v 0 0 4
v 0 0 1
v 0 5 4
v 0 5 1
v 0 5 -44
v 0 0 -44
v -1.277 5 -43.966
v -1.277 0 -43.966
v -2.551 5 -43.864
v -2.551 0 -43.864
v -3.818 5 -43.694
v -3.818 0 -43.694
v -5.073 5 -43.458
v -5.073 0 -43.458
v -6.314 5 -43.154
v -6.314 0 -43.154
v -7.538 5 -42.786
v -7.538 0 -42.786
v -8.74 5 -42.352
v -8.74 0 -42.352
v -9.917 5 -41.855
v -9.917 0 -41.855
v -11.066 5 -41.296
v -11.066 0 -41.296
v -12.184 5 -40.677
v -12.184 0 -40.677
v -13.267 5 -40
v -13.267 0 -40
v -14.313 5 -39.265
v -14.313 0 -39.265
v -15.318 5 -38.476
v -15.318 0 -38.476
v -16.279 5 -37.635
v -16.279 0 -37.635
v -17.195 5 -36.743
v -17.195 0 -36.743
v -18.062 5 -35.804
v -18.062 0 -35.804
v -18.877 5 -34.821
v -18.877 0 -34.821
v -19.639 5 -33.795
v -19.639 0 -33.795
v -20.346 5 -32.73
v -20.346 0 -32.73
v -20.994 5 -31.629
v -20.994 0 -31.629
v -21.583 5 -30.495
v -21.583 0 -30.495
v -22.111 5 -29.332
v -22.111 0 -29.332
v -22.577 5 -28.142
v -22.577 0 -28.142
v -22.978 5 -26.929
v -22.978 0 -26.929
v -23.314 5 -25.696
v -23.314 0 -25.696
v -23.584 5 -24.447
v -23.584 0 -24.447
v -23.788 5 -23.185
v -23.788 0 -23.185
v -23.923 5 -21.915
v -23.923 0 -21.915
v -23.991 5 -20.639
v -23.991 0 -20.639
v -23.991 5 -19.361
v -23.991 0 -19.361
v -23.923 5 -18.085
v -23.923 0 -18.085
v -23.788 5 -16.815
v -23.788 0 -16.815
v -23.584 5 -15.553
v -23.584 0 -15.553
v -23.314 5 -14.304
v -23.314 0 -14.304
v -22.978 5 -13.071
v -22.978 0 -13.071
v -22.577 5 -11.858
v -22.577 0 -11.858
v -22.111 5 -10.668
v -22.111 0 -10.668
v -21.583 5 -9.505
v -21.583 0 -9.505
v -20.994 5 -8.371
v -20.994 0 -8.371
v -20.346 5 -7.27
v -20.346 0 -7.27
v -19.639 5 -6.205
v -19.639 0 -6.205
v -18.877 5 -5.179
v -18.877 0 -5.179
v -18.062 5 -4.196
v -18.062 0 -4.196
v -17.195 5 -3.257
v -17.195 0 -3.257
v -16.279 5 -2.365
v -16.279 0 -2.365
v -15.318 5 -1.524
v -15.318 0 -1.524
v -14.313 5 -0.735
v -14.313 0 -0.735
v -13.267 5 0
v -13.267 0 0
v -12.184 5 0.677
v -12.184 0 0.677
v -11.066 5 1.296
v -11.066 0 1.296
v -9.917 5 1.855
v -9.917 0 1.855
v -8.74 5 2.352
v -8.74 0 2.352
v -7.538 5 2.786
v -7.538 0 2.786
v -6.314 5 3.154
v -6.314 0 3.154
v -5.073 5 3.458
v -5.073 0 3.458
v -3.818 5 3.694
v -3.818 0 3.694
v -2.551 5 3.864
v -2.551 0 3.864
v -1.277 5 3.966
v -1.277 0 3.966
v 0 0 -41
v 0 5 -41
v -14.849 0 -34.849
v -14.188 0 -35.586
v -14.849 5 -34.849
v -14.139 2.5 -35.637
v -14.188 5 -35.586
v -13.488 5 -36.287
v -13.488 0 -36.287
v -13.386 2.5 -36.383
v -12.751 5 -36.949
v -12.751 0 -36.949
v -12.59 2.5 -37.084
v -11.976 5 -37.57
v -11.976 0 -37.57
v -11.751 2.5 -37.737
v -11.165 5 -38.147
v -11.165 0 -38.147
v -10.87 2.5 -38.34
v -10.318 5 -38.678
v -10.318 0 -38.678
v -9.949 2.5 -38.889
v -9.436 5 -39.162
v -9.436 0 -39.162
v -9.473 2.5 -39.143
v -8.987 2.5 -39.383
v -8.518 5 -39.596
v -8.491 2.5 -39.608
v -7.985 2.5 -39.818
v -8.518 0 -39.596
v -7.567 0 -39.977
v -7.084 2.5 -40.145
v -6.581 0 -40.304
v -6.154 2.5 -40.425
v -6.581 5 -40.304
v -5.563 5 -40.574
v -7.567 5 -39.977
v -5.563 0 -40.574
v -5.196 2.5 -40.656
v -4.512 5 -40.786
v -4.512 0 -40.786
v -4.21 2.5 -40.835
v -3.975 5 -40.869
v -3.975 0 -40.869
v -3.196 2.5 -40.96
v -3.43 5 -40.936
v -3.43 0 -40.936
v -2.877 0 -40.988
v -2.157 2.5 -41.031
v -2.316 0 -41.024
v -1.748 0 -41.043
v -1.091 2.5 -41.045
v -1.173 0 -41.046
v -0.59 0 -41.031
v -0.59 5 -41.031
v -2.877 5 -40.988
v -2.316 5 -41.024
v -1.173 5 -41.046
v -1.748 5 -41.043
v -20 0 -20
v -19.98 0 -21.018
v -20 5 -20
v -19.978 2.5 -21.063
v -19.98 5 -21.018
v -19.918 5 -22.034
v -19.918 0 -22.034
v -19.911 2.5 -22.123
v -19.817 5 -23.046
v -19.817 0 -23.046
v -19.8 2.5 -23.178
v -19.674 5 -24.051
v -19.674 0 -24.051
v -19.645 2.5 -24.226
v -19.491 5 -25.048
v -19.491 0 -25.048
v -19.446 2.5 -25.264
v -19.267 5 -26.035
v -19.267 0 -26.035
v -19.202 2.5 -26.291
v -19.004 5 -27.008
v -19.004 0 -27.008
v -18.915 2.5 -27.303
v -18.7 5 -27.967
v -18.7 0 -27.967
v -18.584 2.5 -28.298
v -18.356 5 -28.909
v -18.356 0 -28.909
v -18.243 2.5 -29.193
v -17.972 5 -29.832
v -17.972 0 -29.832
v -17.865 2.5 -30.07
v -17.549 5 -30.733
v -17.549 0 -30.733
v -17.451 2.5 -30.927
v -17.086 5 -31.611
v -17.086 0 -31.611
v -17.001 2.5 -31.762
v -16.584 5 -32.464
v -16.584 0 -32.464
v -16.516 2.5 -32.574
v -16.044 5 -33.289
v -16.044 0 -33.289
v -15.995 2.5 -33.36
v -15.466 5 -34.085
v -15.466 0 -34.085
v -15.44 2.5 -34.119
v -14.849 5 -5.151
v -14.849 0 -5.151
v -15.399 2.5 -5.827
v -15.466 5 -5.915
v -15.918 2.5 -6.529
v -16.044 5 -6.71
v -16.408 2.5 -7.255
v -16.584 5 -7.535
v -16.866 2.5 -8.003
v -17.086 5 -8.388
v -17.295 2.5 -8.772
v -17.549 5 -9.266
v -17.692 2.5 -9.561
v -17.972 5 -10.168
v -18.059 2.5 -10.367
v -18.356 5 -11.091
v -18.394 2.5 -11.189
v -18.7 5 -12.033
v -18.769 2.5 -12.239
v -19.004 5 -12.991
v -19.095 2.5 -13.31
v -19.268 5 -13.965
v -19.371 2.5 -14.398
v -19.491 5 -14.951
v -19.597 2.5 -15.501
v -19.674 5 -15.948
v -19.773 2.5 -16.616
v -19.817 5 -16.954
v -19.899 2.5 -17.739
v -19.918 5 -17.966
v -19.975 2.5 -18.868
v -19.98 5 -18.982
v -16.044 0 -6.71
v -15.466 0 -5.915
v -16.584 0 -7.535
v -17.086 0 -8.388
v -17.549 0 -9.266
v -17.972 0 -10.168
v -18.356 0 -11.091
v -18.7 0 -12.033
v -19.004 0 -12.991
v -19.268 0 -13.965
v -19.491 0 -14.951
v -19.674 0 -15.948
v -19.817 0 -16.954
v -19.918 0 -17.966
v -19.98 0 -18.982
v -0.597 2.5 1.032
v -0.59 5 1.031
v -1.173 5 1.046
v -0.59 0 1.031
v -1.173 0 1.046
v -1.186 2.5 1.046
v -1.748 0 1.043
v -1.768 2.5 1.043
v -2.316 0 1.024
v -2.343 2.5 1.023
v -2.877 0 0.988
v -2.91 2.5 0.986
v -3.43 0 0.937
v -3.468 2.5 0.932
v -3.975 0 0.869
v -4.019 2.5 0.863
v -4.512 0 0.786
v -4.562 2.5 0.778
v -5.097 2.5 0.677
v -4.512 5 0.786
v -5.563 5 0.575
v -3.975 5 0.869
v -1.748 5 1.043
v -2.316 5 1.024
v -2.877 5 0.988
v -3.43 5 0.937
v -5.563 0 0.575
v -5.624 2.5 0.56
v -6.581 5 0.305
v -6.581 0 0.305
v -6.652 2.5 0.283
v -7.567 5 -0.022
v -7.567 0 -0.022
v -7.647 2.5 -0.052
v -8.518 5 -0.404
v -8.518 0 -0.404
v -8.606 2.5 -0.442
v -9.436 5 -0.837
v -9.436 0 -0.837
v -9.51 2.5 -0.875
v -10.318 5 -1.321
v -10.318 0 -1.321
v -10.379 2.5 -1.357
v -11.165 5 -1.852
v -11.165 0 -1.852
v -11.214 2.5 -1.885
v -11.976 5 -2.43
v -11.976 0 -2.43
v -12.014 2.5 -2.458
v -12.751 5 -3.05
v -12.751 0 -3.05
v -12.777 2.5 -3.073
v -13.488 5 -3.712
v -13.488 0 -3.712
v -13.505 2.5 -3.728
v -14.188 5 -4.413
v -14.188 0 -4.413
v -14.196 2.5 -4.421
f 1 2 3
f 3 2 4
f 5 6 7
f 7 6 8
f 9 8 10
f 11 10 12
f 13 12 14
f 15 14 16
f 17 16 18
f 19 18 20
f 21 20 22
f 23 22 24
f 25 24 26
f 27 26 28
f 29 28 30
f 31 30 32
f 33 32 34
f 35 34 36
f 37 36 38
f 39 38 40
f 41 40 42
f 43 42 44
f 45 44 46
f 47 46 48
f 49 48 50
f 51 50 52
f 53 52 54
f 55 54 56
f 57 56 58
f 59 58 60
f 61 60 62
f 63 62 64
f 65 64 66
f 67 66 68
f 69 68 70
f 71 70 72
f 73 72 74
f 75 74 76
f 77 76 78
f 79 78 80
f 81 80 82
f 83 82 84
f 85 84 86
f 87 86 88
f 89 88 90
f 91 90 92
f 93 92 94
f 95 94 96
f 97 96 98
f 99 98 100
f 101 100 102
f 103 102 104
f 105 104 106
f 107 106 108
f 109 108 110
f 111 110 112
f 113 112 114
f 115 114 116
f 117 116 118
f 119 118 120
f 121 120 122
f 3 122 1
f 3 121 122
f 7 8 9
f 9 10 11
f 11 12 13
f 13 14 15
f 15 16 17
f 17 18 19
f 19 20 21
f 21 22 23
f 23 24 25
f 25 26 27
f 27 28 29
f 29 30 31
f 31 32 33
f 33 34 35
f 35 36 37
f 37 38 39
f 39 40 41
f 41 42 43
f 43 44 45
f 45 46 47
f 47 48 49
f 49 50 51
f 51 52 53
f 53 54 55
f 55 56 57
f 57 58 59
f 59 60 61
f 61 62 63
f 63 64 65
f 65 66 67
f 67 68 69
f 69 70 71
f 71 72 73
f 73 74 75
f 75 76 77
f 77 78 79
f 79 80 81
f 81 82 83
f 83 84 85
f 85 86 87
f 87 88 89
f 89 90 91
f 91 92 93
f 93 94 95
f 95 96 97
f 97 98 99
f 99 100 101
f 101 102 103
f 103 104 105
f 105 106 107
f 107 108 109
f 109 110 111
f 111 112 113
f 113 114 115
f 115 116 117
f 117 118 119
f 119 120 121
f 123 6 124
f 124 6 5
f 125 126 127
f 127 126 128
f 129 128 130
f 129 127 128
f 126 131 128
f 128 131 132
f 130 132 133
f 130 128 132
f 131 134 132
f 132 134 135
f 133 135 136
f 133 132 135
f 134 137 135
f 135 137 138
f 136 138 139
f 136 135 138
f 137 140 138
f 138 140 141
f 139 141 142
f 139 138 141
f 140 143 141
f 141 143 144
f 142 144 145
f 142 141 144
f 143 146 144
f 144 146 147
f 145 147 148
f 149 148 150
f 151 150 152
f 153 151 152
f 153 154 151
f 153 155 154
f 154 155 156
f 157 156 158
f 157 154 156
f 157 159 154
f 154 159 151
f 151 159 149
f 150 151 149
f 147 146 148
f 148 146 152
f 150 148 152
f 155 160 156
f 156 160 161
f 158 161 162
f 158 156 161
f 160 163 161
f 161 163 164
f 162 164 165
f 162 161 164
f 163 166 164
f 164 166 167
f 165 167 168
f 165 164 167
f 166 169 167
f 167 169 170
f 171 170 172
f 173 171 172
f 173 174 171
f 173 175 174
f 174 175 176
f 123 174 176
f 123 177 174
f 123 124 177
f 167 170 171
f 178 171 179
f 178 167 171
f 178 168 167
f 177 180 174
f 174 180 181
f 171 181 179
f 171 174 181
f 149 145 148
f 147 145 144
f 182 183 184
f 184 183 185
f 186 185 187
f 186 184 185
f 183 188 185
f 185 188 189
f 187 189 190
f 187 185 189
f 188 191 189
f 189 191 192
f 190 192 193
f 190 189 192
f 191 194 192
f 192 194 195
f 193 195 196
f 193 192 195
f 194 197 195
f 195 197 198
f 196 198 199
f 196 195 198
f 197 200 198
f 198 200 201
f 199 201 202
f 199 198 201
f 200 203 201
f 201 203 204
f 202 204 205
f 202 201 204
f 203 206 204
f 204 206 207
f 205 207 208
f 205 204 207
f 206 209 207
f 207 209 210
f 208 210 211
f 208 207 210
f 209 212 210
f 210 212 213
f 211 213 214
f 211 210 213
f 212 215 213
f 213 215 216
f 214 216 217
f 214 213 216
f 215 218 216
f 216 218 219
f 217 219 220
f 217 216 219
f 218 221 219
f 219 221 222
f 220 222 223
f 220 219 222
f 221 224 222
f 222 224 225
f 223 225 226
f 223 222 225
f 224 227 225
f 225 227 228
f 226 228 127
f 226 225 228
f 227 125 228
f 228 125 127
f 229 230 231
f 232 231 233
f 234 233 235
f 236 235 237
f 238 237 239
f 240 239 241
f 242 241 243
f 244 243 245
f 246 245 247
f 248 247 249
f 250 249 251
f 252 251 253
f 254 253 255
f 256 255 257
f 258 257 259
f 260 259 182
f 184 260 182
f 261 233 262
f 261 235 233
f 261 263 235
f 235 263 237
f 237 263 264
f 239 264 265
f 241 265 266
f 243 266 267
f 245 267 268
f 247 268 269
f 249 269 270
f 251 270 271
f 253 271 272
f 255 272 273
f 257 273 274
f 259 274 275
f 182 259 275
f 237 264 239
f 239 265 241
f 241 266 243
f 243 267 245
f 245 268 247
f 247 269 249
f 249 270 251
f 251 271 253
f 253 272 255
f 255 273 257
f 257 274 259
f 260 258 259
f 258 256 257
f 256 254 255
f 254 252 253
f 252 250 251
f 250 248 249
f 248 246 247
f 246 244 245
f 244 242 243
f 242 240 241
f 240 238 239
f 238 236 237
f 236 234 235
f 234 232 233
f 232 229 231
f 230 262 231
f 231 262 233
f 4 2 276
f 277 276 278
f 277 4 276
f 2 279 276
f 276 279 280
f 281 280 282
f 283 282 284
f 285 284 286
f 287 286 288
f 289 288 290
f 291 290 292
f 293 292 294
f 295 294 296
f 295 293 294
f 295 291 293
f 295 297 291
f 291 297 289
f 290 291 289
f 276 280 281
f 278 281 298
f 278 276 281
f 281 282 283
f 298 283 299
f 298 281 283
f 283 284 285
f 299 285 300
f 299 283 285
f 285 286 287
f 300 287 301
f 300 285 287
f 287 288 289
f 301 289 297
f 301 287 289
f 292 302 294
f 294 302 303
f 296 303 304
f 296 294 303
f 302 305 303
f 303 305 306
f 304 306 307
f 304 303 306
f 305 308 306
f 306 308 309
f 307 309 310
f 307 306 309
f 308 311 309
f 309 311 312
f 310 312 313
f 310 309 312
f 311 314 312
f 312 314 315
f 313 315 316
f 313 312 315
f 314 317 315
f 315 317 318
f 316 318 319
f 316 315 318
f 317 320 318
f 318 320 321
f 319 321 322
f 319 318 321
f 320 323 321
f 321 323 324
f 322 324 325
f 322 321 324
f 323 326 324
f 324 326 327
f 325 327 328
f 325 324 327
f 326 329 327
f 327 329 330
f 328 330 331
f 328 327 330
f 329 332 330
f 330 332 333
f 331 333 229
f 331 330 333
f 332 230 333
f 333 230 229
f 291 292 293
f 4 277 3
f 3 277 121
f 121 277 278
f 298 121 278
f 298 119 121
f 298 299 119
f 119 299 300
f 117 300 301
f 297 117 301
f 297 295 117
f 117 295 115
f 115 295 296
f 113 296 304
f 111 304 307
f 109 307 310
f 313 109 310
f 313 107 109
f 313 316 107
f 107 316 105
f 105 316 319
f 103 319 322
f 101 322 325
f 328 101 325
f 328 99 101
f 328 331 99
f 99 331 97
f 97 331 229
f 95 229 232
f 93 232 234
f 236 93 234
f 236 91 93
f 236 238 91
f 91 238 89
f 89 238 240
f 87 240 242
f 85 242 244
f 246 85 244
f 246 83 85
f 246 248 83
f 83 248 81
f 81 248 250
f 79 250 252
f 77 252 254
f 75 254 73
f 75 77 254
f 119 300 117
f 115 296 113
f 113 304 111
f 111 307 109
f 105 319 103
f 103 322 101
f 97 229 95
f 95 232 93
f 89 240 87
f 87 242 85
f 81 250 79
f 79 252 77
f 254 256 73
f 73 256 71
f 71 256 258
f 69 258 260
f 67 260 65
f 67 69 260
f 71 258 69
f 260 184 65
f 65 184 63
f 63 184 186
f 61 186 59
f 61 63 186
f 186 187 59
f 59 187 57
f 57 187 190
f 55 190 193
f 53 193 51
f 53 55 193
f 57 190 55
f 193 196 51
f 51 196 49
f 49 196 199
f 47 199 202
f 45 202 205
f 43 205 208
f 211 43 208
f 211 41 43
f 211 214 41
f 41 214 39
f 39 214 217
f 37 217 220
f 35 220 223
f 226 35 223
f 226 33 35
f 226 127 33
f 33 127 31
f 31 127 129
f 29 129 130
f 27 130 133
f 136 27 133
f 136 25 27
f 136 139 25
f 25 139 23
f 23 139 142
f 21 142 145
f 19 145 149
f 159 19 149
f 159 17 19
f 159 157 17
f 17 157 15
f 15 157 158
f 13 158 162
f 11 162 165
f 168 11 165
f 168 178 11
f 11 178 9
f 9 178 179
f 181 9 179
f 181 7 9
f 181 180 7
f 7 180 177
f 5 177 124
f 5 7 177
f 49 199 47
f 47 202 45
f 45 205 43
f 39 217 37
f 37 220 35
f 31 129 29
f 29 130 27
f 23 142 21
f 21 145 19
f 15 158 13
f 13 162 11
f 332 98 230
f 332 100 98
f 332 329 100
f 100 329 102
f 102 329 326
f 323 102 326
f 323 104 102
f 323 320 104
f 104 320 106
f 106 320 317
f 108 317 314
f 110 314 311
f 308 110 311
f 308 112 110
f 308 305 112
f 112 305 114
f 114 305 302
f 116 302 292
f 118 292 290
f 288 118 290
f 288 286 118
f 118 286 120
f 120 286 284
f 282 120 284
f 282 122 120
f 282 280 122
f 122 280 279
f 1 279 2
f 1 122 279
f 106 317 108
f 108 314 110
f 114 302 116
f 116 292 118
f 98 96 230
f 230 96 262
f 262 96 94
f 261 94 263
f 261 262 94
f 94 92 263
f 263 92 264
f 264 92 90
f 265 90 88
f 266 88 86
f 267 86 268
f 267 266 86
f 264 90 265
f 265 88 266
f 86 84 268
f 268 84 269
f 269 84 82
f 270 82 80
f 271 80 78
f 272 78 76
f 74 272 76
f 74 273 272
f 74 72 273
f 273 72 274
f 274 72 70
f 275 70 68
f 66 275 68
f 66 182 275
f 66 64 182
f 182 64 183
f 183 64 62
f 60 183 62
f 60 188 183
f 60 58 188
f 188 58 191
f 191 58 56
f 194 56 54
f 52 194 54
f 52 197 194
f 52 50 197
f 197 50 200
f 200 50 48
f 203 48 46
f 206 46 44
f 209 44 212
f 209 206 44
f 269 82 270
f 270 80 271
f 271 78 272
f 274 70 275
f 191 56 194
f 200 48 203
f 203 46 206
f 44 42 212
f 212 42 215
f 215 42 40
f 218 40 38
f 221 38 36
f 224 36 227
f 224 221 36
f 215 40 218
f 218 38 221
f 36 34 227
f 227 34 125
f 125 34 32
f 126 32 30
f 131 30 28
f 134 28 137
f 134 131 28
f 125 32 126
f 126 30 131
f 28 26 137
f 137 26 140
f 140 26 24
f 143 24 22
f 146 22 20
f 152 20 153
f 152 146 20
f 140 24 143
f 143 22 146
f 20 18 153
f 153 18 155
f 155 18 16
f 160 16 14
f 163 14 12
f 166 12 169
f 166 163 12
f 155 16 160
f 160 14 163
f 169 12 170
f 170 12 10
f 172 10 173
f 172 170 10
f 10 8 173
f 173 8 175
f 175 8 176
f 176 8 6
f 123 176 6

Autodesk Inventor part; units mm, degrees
ref_plane "YZ Plane" through (0, 0, 0) normal (1, 0, 0) x (0, 1, 0)
ref_plane "XZ Plane" through (0, 0, 0) normal (0, 1, 0) x (-1, 0, 0)
ref_plane "XY Plane" through (0, 0, 0) normal (0, 0, 1) x (1, 0, 0)
sketch "Sketch1" plane through (0, 0, 0) normal (0, 1, 0) x (-1, 0, 0)
  line L0 (0, 0) -> (0, -40)
  line L1 (0, -20) -> (20, -20)
  dimension "d0" = 40
  dimension "d1" = 20
sketch "Sketch2" plane through (0, 0, 0) normal (0, 1, 0) x (-1, 0, 0)
  arc A0 (0, -40) -> (0, 0) centre (0, -20) ccw
  line L0 (0, 0) -> (0, 1)
  line L1 (0, -40) -> (0, -41)
  line L2 (0, -20) -> (14.8492, -5.1508) construction
  line L3 (0, -20) -> (0, 1) construction
  spline S0 degree 4 poles (0, 1) (18.89, 2.2775) (28.1468, -20.0014) (18.8898, -42.2749) (0, -41) knots 0 0 0 0 0 1 1 1 1 1
  line L4 (0, 1) -> (0, 4)
  line L5 (0, 4) -> (5, 4)
  line L6 (0, -41) -> (0, -44)
  line L7 (0, -44) -> (5, -44)
  line L8 (20, -20) -> (23, -20)
  arc A1 (24, -20) -> (0, 4) centre (0, -20) ccw
  arc A2 (0, -44) -> (24, -20) centre (0, -20) ccw
  point P0 (14.8493, -34.8486)
  dimension "d4" = 1
  dimension "d5" = 1
  dimension "d6" = 45
  dimension "d7" = 3
  dimension "d8" = 5
  dimension "d9" = 3
  dimension "d10" = 5
  dimension "d11" = 3
extrude "Extrusion1" add sketch "Sketch2" along normal blind 5 contours S0 L4 A1 A2 L6
properties part number "BassGuitarCurveTest"
